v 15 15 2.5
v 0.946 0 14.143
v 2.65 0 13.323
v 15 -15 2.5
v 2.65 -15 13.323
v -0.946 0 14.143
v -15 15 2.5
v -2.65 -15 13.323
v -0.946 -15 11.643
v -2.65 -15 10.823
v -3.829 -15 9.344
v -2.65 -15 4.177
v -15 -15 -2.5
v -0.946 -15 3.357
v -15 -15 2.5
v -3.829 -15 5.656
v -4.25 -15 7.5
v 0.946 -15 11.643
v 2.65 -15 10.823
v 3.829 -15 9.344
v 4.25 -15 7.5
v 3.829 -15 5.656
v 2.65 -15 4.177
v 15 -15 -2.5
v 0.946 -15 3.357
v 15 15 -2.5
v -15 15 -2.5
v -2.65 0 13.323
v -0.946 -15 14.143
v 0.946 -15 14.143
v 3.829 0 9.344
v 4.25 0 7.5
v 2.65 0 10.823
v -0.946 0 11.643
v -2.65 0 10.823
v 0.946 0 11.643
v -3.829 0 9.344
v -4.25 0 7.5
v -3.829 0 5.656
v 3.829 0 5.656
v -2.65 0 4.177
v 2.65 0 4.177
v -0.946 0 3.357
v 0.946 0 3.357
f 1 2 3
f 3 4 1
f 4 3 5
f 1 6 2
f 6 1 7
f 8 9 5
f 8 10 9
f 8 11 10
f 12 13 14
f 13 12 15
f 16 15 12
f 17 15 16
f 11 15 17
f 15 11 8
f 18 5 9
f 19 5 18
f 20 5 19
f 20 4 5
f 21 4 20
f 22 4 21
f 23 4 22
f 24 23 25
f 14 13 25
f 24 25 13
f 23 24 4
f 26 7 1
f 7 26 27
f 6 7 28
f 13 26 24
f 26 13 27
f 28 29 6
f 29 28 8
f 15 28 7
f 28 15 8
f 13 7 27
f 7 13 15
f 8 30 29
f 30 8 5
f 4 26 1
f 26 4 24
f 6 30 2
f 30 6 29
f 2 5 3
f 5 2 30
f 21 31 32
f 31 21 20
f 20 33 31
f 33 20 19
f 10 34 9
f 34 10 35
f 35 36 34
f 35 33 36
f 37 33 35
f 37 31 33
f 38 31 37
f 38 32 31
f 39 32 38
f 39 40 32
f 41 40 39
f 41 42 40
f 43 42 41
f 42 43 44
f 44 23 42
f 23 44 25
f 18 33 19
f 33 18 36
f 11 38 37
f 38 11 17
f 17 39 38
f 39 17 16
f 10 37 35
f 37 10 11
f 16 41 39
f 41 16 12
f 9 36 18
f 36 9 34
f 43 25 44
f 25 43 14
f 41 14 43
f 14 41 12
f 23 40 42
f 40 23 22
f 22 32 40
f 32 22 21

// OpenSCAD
foot();

module foot() {
	difference() {
		hull() {
			translate([0,0,10])
				rotate([90,0,0])
					cylinder(d=8.5, h=15);
			cube([30,30,5], center=true);
		}
		translate([0,0,7.5])
			rotate([90,0,0])
				cylinder(d=8.5, h=30);
	}
}
